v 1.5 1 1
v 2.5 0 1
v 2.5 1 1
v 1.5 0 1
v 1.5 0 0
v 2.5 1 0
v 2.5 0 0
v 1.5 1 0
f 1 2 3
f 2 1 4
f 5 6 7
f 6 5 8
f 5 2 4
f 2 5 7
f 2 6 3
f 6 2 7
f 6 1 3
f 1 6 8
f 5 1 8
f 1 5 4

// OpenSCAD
// cube(1);

// translate([0.5, 0, 0]) {
//     cube(1);
// }

// translate([1, 0, 0]) {
//     cube(1);
// }

translate([1.5, 0, 0]) {
    cube(1);
}
